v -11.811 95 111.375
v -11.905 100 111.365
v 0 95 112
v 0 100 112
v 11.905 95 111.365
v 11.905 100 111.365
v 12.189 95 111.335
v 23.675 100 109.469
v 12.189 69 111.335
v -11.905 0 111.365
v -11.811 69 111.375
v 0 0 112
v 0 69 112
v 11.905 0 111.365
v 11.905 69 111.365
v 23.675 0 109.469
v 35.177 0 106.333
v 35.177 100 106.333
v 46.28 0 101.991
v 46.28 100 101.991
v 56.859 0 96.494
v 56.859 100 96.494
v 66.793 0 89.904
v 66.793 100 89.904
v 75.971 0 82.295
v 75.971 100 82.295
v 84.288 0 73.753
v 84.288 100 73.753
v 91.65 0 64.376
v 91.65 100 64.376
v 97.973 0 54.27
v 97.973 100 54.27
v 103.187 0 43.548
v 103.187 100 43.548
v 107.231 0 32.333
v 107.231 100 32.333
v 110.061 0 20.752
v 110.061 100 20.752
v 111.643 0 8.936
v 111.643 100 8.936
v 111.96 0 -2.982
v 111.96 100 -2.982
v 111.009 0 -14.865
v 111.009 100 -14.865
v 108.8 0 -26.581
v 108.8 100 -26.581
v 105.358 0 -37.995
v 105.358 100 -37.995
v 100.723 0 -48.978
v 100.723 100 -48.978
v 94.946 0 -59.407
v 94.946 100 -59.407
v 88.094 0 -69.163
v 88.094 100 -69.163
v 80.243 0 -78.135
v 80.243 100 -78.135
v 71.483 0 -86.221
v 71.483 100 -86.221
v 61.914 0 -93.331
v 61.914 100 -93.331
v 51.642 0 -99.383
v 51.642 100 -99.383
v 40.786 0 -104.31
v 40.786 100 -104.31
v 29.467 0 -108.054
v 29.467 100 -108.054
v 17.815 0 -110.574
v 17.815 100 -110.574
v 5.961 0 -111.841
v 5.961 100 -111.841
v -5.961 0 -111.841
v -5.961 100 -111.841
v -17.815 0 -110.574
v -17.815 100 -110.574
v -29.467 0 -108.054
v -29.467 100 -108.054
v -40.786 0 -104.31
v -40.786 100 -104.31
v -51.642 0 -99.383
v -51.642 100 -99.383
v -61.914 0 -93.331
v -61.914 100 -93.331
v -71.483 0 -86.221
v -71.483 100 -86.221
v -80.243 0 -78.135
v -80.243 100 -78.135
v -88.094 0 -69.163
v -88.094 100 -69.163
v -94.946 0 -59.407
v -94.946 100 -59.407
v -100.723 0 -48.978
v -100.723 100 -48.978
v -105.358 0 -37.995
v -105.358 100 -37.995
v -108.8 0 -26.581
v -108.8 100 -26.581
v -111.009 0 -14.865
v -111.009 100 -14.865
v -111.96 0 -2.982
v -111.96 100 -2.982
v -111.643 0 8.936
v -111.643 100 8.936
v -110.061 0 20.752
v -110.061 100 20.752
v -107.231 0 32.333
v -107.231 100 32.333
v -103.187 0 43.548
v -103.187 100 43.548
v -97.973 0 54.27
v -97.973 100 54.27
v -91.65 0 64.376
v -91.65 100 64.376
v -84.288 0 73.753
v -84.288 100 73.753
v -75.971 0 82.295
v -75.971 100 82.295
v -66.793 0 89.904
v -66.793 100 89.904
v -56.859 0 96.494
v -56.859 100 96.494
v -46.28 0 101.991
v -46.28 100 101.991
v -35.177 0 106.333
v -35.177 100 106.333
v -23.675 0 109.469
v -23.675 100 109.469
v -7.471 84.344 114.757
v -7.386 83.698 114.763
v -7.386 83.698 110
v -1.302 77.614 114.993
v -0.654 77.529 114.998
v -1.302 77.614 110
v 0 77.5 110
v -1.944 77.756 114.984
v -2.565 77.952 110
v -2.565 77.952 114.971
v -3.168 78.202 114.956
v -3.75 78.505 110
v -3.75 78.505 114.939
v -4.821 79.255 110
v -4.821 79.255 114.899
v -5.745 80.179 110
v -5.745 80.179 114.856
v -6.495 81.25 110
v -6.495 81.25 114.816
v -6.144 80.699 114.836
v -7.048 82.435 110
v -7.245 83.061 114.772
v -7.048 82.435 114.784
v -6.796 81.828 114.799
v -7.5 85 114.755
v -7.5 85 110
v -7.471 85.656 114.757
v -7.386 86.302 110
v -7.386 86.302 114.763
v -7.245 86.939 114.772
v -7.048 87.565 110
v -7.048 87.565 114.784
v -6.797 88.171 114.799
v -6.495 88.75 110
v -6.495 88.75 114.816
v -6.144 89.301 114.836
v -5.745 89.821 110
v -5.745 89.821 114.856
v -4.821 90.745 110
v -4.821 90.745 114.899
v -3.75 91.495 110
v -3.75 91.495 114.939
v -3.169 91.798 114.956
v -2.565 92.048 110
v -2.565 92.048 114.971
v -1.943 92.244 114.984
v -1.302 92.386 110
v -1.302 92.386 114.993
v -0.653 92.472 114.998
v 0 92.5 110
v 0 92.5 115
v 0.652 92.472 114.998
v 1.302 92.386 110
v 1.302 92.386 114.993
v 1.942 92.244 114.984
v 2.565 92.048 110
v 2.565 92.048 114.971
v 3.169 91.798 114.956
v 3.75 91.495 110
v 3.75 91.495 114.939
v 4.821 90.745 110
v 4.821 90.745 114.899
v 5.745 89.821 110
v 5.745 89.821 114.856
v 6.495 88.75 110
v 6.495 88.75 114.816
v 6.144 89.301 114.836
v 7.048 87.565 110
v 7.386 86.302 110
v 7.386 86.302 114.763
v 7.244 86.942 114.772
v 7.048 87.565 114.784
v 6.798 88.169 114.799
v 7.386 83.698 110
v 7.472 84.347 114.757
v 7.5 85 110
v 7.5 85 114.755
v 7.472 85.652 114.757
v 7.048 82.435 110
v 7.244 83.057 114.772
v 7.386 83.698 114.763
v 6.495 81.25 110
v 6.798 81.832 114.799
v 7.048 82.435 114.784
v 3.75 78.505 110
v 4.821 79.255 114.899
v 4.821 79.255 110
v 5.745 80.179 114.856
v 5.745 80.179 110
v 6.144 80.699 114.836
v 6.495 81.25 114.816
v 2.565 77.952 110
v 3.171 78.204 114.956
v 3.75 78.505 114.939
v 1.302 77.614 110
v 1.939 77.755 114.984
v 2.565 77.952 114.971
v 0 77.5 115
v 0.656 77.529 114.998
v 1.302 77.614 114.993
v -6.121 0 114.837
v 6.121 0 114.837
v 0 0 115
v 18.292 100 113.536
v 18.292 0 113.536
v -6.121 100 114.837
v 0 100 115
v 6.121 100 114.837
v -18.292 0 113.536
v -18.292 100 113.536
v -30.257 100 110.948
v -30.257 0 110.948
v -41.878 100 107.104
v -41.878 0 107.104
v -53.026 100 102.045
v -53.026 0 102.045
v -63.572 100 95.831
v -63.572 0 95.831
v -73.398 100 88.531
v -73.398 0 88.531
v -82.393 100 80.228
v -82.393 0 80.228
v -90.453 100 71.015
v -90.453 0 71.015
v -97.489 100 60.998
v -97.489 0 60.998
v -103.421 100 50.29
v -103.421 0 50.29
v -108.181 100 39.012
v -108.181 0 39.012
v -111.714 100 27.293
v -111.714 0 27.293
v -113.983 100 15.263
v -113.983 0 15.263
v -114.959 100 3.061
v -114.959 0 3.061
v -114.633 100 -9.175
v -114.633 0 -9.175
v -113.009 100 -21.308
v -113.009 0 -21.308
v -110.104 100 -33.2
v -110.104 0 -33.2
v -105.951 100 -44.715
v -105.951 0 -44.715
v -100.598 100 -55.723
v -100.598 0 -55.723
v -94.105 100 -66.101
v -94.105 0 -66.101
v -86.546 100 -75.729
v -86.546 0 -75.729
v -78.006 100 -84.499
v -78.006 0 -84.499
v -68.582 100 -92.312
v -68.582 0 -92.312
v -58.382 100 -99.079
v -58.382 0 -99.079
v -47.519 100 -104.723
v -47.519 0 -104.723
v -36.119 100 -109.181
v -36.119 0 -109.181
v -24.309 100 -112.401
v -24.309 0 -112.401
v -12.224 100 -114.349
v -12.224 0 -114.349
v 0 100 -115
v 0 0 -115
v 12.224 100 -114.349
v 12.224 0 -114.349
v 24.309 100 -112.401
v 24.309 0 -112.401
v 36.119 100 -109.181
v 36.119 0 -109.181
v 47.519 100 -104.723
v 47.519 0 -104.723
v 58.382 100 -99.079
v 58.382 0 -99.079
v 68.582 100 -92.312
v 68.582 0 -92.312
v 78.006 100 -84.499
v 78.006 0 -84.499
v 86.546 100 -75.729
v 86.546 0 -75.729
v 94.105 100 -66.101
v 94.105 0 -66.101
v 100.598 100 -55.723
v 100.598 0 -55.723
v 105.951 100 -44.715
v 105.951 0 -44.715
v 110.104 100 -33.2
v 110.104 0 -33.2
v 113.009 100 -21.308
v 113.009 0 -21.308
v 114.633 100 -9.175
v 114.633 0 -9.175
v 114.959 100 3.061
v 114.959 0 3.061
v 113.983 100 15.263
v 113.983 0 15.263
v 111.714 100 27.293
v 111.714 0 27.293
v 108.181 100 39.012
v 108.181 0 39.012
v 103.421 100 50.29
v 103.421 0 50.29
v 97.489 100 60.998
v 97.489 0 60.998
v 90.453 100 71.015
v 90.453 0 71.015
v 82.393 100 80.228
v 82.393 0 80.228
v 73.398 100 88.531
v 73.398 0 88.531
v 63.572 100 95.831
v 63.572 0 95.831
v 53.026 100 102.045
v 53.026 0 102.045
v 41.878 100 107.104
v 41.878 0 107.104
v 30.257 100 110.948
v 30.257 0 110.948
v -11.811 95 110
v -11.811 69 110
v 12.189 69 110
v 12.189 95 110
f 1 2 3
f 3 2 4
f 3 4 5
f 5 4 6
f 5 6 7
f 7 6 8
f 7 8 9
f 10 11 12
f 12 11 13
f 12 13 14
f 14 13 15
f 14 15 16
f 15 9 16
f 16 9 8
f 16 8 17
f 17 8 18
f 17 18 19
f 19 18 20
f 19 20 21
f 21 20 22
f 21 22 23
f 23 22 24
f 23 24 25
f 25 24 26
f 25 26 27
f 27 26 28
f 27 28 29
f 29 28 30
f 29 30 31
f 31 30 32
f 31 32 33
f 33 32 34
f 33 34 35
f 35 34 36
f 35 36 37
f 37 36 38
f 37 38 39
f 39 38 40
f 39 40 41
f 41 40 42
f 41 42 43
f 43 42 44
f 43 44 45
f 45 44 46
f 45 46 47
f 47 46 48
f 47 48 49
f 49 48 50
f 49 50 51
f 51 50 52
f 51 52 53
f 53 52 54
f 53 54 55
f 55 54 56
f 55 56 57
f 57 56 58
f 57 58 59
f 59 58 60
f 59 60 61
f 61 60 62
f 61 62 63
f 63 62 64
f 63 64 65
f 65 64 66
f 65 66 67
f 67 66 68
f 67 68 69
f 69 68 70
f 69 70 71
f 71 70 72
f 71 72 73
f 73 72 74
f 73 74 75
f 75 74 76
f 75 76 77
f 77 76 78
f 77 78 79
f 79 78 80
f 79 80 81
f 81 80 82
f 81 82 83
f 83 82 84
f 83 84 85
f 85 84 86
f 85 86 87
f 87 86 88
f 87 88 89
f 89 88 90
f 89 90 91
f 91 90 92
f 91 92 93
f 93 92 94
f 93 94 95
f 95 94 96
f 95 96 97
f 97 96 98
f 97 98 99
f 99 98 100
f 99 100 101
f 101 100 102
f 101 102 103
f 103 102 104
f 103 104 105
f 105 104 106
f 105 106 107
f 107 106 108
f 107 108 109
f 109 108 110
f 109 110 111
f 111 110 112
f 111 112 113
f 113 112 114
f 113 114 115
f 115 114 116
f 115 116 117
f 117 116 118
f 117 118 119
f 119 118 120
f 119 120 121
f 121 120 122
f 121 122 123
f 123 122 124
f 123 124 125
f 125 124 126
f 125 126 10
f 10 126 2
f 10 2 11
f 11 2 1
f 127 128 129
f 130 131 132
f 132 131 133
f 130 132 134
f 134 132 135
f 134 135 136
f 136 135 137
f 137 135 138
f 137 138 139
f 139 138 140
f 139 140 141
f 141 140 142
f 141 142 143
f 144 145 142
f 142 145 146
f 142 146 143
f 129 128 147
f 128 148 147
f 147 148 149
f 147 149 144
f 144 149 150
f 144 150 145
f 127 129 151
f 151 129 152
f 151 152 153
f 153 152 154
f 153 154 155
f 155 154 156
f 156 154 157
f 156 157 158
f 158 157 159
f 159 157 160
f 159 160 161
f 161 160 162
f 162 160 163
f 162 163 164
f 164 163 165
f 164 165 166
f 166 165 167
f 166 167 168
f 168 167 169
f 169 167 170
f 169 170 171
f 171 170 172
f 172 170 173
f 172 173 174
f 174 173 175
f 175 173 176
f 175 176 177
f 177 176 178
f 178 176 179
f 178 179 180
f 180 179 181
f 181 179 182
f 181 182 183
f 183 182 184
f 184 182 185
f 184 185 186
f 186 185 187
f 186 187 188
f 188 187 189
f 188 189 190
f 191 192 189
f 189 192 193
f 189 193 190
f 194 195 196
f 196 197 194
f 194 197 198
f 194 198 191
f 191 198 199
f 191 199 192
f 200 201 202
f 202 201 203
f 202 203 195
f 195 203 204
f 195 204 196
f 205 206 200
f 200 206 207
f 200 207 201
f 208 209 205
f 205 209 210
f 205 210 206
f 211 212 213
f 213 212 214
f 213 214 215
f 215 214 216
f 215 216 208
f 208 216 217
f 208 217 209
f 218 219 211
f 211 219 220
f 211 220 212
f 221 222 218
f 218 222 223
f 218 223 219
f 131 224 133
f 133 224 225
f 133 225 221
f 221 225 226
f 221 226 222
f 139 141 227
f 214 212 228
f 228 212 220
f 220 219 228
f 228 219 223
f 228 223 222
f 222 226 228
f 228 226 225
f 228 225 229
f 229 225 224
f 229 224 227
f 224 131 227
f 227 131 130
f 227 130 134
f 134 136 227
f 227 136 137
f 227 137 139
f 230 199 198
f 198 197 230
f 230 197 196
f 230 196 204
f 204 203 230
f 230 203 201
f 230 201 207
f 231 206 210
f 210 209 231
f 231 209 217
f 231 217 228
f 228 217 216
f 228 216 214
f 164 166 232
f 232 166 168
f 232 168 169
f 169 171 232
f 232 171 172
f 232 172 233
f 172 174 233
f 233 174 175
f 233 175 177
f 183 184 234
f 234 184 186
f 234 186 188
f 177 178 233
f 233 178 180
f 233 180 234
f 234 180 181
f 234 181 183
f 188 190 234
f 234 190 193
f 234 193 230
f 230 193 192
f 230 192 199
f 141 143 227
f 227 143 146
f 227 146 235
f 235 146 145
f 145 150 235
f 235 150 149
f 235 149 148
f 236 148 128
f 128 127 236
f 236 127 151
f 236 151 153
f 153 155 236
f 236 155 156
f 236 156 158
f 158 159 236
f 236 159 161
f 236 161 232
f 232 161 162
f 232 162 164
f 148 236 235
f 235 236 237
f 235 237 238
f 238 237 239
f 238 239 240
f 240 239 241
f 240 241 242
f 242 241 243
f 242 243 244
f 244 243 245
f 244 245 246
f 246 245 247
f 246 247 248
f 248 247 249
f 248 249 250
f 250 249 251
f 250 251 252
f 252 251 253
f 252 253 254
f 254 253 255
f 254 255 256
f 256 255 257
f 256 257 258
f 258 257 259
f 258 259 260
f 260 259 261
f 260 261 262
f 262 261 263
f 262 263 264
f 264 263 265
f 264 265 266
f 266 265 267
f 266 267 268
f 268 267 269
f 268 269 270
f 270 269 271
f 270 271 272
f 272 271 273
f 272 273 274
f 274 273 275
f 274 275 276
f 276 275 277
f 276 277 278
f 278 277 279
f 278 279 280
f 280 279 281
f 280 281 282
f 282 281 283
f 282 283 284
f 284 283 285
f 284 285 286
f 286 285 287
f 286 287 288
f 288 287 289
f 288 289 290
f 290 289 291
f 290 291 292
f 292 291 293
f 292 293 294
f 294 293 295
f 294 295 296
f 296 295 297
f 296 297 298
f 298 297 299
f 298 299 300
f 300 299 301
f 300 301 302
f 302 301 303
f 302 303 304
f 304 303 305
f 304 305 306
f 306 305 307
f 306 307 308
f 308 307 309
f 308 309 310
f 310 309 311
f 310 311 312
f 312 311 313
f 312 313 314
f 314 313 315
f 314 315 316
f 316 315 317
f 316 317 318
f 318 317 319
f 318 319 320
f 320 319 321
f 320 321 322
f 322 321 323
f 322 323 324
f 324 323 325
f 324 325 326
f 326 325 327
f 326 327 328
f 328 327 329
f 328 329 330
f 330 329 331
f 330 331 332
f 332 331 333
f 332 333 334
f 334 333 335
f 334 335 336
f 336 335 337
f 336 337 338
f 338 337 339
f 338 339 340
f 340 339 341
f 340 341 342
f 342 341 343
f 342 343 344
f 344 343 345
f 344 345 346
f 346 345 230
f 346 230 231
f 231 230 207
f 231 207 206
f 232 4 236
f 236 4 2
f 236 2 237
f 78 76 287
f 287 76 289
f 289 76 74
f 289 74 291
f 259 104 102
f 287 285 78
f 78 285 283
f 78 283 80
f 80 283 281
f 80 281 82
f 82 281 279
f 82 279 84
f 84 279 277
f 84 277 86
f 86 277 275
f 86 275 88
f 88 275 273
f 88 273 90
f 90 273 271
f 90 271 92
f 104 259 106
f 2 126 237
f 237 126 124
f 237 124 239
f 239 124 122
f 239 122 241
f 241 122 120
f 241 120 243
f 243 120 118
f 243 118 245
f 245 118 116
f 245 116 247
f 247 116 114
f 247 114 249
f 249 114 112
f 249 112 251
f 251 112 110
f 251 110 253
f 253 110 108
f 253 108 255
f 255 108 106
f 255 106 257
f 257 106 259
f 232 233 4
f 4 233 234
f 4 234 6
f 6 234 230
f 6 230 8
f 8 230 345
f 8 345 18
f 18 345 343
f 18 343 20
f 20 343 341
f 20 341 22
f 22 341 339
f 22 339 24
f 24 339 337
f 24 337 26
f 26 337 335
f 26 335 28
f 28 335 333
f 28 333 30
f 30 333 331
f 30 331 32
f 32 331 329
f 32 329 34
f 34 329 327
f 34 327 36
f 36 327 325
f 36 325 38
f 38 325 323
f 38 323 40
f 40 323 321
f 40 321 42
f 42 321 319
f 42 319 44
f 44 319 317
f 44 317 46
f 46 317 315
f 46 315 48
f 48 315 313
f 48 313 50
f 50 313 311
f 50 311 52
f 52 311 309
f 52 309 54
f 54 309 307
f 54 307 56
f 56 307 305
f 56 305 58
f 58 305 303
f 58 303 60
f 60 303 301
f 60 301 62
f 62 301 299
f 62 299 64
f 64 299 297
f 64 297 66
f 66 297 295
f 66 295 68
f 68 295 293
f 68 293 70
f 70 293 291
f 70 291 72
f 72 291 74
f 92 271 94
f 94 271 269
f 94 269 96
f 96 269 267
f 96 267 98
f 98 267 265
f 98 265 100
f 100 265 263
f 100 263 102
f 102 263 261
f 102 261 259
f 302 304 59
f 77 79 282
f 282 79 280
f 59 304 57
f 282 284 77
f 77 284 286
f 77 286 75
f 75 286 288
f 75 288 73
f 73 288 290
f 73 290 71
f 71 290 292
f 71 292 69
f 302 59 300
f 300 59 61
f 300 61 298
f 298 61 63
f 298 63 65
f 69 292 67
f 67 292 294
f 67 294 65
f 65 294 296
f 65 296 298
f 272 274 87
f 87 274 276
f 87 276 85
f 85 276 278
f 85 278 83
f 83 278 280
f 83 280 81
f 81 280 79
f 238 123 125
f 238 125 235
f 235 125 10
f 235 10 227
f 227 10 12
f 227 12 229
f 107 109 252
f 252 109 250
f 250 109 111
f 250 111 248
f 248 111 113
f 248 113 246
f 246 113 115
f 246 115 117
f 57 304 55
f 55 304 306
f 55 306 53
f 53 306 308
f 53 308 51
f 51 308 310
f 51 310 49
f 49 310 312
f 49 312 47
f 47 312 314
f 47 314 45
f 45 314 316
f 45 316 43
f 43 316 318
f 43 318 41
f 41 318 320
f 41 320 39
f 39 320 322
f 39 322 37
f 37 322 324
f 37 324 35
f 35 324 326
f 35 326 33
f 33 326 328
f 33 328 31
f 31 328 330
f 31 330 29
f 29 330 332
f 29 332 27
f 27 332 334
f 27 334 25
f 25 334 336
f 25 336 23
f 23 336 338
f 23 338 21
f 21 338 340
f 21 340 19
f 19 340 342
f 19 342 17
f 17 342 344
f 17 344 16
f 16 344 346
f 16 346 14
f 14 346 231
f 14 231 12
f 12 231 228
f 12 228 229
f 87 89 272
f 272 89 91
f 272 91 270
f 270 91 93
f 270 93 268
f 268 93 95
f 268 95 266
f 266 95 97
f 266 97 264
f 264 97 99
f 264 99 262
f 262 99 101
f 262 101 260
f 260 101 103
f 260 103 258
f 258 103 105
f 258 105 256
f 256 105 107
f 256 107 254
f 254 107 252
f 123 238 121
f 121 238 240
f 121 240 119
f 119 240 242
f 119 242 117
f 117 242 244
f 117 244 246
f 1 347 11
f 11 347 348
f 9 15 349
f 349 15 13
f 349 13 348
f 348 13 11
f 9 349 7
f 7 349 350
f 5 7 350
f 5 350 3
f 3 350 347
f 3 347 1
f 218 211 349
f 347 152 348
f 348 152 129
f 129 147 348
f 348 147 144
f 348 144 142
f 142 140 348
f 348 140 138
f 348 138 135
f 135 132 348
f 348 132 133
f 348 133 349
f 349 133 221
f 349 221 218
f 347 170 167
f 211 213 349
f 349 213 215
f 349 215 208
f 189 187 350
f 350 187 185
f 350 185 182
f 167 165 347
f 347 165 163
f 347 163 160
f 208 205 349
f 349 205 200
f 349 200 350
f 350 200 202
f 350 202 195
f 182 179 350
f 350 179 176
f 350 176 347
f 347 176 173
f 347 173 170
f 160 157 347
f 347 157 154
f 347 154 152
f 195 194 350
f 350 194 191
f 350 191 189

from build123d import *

# Parameters (mm, degrees)
SKETCH2_R           = 115
BOSS_EXTRUDE3_DEPTH = 100
SKETCH3_R           = 112
CUT_EXTRUDE4_DEPTH  = 191.91883092
SKETCH4_R           = 7.5
CUT_EXTRUDE5_DEPTH  = 272.753564834
SKETCH6_W           = 24
SKETCH6_H           = 26
BOSS_EXTRUDE4_DEPTH = 2
SKETCH7_R           = 7.5
CUT_EXTRUDE6_DEPTH  = 272.753564996


with BuildPart() as part:
    # Sketch2 → Boss-Extrude3 (new body)
    with BuildSketch(Plane(origin=(0, 0, 0), x_dir=(1, 0, 0), z_dir=(0, 1, 0))):
        with Locations(Location((0, 0, 0), (0, 0, 270))):
            Circle(SKETCH2_R)
    extrude(amount=BOSS_EXTRUDE3_DEPTH)

    # Sketch3 → Cut-Extrude4 (cut, through all)
    with BuildSketch(Plane(origin=(0, 100, 0), x_dir=(1, 0, 0), z_dir=(0, 1, 0))):
        with Locations(Location((0, 0, 0), (0, 0, 270))):
            Circle(SKETCH3_R)
    extrude(amount=-CUT_EXTRUDE4_DEPTH, mode=Mode.SUBTRACT)

    # Sketch4 → Cut-Extrude5 (cut, through all)
    with BuildSketch(Plane.XY.offset(110)):
        with Locations(Location((0, 85, 0), (0, 0, 90))):
            Circle(SKETCH4_R)
    extrude(amount=CUT_EXTRUDE5_DEPTH, mode=Mode.SUBTRACT)

    # Sketch6 → Boss-Extrude4 (add)
    with BuildSketch(Plane.XY.offset(110)):
        with Locations((0.188638026, 82)):
            Rectangle(SKETCH6_W, SKETCH6_H)
    extrude(amount=BOSS_EXTRUDE4_DEPTH)

    # Sketch7 → Cut-Extrude6 (cut, through all)
    with BuildSketch(Plane(origin=(0, 0, 110), x_dir=(-1, 0, 0), z_dir=(0, 0, -1))):
        with Locations((0, 85)):
            Circle(SKETCH7_R)
    extrude(amount=-CUT_EXTRUDE6_DEPTH, mode=Mode.SUBTRACT)


solid = part.part
